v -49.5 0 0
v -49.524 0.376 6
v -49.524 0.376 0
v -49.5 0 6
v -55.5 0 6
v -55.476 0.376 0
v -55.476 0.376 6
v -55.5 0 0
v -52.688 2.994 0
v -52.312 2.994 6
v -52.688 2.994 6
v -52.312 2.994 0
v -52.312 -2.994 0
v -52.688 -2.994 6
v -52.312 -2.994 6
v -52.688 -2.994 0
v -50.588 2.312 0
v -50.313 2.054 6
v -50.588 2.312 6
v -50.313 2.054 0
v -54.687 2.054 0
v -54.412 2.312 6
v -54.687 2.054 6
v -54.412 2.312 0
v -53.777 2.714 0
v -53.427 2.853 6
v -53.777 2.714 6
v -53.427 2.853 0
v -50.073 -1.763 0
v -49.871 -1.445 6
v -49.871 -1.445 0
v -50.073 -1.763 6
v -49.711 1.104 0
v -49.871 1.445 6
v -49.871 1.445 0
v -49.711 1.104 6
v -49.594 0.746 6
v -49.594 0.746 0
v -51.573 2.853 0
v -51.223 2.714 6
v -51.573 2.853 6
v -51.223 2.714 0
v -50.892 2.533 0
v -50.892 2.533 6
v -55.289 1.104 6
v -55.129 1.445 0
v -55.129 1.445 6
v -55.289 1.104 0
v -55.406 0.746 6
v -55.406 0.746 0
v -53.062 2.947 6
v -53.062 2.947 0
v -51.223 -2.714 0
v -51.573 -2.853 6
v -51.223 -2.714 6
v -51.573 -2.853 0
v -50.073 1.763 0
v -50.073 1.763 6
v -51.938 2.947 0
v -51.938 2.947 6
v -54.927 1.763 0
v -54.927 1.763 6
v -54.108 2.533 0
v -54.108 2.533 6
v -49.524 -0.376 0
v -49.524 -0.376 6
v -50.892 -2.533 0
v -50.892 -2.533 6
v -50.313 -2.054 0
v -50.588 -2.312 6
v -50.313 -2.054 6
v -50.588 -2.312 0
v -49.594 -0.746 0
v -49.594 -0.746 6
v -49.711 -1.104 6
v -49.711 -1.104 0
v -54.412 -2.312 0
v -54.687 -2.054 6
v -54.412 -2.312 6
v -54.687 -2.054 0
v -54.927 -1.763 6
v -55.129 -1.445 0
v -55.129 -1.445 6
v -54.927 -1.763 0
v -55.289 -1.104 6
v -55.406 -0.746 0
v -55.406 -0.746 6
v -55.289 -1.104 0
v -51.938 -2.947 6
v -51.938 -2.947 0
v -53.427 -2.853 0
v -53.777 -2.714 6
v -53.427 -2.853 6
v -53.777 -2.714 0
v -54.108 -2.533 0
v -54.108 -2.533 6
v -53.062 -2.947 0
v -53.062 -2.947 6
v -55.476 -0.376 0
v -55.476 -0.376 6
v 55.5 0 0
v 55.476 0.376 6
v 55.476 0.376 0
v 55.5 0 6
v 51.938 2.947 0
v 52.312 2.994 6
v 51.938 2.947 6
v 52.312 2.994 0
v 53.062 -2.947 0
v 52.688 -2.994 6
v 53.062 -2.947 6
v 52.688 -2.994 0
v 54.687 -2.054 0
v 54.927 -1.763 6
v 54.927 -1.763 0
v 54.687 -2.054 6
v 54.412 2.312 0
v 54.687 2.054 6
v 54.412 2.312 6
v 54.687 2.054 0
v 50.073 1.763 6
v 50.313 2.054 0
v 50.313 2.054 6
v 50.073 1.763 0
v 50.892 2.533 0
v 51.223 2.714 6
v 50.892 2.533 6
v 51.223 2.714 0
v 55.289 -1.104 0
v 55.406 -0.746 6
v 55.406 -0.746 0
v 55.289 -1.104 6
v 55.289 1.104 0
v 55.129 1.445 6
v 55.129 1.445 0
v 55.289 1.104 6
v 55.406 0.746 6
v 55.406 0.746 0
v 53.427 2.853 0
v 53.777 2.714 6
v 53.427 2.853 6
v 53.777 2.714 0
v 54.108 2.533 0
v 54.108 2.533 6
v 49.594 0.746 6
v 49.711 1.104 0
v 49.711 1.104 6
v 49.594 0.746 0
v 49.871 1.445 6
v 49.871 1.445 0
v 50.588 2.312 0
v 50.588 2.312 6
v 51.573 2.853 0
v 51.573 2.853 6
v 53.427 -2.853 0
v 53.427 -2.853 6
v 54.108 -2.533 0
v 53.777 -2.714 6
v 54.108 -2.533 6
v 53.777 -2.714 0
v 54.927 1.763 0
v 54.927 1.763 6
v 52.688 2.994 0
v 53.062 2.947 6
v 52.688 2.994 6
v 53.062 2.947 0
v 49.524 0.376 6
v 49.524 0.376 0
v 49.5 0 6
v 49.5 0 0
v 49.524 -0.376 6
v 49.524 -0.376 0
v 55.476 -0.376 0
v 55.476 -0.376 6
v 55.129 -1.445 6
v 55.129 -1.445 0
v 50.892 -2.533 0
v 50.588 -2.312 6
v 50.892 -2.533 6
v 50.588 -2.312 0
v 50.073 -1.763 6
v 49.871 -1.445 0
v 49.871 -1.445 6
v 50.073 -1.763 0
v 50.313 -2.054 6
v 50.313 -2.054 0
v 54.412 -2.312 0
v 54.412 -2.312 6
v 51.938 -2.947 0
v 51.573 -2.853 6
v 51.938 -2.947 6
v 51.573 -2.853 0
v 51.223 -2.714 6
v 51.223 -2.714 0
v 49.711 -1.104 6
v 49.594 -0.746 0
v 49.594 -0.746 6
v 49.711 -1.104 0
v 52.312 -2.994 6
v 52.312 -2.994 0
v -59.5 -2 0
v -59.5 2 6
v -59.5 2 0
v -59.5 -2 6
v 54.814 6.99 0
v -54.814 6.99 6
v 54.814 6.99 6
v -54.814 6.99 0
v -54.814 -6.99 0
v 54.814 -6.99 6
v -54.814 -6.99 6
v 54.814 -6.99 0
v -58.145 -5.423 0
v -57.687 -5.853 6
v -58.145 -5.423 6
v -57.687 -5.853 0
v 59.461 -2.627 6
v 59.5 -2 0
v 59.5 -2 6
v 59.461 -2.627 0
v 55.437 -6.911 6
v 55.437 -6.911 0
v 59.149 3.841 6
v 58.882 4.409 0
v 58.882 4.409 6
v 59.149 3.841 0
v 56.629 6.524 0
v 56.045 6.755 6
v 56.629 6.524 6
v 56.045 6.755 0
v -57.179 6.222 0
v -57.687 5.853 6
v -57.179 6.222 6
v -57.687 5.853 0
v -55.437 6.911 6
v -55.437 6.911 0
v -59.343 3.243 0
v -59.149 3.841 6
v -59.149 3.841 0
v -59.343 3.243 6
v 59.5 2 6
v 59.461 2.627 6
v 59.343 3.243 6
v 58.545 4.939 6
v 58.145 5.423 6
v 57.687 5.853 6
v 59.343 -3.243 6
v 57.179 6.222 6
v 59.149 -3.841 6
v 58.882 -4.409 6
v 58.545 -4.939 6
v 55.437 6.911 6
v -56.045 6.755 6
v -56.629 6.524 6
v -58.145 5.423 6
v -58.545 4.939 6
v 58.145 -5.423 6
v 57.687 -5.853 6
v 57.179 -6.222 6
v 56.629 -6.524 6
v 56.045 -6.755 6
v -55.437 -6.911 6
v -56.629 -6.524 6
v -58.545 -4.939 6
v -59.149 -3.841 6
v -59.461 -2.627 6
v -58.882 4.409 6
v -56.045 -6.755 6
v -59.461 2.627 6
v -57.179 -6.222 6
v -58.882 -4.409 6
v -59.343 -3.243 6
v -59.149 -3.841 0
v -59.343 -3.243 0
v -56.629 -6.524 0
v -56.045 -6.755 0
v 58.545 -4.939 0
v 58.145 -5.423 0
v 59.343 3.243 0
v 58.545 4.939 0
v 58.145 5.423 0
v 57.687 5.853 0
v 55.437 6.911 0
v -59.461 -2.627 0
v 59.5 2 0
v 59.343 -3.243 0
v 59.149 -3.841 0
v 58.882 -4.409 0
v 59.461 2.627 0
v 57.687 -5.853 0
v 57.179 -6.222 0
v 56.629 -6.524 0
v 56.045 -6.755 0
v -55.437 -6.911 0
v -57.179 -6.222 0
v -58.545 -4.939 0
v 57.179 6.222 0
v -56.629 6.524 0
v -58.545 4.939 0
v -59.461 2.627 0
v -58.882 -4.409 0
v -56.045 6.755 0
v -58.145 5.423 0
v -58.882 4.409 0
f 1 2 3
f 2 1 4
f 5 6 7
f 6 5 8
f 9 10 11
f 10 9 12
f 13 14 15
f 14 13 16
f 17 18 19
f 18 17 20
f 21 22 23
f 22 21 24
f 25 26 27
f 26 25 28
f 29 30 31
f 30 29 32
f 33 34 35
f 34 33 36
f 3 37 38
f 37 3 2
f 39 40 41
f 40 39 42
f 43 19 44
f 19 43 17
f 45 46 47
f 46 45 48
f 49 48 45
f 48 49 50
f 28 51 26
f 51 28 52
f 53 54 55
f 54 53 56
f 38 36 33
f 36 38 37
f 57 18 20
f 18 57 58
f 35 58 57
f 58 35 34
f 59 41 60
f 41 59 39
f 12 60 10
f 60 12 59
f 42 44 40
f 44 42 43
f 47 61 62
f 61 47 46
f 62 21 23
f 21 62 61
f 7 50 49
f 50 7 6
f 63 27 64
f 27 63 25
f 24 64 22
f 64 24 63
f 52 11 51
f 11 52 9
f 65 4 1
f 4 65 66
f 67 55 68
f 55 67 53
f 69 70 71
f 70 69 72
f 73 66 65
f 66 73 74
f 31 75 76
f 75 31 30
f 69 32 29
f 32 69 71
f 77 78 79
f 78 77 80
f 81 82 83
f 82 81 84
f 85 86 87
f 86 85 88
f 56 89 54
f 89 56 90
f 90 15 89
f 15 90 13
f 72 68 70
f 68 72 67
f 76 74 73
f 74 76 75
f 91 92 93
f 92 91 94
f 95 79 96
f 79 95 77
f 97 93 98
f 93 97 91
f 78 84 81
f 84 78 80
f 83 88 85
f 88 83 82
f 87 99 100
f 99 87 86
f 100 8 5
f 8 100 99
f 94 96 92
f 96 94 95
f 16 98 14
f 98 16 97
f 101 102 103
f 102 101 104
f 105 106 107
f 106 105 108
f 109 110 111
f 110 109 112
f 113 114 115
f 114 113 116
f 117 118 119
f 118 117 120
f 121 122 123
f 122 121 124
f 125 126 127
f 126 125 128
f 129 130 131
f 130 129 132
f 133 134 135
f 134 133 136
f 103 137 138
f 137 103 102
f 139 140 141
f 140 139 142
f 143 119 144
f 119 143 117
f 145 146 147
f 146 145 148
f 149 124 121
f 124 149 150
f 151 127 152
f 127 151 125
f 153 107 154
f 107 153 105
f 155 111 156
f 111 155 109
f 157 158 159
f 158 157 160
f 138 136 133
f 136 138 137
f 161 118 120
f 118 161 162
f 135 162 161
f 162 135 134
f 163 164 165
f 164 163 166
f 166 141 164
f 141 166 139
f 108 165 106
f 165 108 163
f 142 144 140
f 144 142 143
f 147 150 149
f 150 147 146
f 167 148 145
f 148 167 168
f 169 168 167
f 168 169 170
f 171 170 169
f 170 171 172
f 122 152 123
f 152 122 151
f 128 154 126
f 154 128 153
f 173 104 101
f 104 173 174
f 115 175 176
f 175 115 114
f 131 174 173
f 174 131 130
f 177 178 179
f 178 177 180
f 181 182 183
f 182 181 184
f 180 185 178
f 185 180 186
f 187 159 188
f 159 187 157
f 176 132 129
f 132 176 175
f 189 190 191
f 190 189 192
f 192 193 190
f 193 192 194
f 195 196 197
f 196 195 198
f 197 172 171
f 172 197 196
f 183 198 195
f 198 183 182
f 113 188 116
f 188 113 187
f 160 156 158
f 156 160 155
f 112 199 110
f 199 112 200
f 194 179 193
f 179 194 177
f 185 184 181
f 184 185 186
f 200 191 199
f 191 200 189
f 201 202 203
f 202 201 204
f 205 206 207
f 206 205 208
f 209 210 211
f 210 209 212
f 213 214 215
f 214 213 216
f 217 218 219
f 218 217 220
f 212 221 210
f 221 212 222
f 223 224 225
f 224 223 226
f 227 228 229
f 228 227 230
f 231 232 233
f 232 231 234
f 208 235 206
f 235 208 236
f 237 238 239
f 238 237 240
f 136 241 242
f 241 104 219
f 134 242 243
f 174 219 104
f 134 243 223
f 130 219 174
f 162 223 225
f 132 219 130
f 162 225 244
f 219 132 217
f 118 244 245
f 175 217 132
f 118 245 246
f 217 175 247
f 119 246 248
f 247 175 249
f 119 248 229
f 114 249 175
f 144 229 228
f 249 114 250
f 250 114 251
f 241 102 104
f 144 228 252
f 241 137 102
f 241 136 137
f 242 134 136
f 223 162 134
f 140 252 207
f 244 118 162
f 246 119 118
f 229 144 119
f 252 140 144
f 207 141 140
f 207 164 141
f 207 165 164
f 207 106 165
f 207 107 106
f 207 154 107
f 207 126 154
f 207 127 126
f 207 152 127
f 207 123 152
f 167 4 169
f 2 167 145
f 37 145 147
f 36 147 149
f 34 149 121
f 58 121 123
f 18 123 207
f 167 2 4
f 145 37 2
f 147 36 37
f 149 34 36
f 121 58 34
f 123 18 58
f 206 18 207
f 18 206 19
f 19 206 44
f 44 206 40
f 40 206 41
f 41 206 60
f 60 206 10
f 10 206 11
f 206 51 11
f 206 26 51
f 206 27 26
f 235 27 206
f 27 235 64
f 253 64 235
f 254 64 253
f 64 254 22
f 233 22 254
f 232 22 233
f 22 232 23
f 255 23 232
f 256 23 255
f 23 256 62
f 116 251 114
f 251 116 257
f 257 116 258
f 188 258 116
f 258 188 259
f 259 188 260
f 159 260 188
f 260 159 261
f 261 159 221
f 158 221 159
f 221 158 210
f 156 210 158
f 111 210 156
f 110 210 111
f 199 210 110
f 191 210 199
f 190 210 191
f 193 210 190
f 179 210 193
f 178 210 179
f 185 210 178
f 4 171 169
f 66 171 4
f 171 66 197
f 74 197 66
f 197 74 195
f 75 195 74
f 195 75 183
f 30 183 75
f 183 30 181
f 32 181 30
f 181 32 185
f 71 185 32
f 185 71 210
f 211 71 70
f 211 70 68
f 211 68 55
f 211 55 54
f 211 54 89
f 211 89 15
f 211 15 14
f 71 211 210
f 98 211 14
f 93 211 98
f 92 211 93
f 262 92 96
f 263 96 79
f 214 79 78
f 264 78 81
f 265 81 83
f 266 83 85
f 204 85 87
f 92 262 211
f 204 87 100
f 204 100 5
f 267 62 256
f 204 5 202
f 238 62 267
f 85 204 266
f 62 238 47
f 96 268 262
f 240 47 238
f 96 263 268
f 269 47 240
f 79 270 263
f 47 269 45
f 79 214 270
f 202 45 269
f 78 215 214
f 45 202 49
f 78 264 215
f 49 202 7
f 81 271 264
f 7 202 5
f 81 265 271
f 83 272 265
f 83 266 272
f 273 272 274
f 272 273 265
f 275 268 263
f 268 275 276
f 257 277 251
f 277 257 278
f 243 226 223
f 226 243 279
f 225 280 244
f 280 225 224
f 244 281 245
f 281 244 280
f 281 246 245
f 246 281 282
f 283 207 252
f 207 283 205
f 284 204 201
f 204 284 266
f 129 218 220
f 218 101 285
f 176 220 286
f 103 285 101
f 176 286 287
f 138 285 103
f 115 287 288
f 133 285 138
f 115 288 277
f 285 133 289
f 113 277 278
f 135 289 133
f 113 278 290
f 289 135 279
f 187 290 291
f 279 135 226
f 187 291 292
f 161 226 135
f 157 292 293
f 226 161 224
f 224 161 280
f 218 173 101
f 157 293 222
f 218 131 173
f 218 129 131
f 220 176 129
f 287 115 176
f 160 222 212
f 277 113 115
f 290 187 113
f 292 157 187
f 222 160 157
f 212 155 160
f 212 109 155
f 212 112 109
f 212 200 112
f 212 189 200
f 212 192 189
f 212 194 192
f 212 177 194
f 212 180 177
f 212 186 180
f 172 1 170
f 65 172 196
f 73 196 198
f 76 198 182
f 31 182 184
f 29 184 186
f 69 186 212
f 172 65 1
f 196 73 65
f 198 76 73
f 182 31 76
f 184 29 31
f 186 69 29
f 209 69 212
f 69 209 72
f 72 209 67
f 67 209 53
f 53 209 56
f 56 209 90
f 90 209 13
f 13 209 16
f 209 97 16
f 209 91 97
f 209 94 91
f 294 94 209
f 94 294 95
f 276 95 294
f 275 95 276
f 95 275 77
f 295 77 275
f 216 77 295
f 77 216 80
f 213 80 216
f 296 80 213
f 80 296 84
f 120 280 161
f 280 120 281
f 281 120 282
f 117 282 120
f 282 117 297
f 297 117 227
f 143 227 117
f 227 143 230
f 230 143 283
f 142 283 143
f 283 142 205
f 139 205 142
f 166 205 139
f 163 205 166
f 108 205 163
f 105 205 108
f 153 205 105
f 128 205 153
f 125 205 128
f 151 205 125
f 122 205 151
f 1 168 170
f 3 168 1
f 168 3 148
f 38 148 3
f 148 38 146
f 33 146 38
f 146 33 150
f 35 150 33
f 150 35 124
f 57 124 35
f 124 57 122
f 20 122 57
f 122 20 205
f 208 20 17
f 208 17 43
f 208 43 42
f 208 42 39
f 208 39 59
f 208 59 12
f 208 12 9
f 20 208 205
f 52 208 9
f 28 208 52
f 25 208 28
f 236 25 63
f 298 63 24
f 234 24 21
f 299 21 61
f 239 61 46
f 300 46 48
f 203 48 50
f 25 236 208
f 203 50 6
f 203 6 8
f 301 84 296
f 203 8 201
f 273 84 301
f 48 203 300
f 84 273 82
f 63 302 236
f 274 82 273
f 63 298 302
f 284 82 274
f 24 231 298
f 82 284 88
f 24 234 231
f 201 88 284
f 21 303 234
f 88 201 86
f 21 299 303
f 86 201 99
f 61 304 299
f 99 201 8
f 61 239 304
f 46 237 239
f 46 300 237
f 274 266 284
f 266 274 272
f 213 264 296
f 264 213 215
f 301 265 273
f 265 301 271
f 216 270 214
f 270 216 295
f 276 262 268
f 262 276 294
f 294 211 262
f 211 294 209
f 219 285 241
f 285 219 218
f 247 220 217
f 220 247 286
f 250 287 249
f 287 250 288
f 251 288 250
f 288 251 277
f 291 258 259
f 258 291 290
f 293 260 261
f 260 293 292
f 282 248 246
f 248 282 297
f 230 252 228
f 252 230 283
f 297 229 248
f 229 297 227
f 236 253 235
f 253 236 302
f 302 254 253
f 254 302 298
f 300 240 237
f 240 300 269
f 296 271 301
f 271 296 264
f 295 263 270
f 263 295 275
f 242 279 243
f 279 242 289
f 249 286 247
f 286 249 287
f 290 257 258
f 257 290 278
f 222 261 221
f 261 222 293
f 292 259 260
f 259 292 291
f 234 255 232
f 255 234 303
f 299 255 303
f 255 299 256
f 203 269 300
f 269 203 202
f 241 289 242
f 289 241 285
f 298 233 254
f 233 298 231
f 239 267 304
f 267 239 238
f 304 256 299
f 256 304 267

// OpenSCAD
$fn = 50;


difference() {
	union() {
		hull() {
			translate(v = [-54.5000000000, 2.0000000000, 0]) {
				cylinder(h = 6, r = 5);
			}
			translate(v = [54.5000000000, 2.0000000000, 0]) {
				cylinder(h = 6, r = 5);
			}
			translate(v = [-54.5000000000, -2.0000000000, 0]) {
				cylinder(h = 6, r = 5);
			}
			translate(v = [54.5000000000, -2.0000000000, 0]) {
				cylinder(h = 6, r = 5);
			}
		}
	}
	union() {
		translate(v = [-52.5000000000, 0.0000000000, -100.0000000000]) {
			cylinder(h = 200, r = 3.0000000000);
		}
		translate(v = [-52.5000000000, 0.0000000000, -100.0000000000]) {
			cylinder(h = 200, r = 3.0000000000);
		}
		translate(v = [52.5000000000, 0.0000000000, -100.0000000000]) {
			cylinder(h = 200, r = 3.0000000000);
		}
		translate(v = [52.5000000000, 0.0000000000, -100.0000000000]) {
			cylinder(h = 200, r = 3.0000000000);
		}
	}
}
